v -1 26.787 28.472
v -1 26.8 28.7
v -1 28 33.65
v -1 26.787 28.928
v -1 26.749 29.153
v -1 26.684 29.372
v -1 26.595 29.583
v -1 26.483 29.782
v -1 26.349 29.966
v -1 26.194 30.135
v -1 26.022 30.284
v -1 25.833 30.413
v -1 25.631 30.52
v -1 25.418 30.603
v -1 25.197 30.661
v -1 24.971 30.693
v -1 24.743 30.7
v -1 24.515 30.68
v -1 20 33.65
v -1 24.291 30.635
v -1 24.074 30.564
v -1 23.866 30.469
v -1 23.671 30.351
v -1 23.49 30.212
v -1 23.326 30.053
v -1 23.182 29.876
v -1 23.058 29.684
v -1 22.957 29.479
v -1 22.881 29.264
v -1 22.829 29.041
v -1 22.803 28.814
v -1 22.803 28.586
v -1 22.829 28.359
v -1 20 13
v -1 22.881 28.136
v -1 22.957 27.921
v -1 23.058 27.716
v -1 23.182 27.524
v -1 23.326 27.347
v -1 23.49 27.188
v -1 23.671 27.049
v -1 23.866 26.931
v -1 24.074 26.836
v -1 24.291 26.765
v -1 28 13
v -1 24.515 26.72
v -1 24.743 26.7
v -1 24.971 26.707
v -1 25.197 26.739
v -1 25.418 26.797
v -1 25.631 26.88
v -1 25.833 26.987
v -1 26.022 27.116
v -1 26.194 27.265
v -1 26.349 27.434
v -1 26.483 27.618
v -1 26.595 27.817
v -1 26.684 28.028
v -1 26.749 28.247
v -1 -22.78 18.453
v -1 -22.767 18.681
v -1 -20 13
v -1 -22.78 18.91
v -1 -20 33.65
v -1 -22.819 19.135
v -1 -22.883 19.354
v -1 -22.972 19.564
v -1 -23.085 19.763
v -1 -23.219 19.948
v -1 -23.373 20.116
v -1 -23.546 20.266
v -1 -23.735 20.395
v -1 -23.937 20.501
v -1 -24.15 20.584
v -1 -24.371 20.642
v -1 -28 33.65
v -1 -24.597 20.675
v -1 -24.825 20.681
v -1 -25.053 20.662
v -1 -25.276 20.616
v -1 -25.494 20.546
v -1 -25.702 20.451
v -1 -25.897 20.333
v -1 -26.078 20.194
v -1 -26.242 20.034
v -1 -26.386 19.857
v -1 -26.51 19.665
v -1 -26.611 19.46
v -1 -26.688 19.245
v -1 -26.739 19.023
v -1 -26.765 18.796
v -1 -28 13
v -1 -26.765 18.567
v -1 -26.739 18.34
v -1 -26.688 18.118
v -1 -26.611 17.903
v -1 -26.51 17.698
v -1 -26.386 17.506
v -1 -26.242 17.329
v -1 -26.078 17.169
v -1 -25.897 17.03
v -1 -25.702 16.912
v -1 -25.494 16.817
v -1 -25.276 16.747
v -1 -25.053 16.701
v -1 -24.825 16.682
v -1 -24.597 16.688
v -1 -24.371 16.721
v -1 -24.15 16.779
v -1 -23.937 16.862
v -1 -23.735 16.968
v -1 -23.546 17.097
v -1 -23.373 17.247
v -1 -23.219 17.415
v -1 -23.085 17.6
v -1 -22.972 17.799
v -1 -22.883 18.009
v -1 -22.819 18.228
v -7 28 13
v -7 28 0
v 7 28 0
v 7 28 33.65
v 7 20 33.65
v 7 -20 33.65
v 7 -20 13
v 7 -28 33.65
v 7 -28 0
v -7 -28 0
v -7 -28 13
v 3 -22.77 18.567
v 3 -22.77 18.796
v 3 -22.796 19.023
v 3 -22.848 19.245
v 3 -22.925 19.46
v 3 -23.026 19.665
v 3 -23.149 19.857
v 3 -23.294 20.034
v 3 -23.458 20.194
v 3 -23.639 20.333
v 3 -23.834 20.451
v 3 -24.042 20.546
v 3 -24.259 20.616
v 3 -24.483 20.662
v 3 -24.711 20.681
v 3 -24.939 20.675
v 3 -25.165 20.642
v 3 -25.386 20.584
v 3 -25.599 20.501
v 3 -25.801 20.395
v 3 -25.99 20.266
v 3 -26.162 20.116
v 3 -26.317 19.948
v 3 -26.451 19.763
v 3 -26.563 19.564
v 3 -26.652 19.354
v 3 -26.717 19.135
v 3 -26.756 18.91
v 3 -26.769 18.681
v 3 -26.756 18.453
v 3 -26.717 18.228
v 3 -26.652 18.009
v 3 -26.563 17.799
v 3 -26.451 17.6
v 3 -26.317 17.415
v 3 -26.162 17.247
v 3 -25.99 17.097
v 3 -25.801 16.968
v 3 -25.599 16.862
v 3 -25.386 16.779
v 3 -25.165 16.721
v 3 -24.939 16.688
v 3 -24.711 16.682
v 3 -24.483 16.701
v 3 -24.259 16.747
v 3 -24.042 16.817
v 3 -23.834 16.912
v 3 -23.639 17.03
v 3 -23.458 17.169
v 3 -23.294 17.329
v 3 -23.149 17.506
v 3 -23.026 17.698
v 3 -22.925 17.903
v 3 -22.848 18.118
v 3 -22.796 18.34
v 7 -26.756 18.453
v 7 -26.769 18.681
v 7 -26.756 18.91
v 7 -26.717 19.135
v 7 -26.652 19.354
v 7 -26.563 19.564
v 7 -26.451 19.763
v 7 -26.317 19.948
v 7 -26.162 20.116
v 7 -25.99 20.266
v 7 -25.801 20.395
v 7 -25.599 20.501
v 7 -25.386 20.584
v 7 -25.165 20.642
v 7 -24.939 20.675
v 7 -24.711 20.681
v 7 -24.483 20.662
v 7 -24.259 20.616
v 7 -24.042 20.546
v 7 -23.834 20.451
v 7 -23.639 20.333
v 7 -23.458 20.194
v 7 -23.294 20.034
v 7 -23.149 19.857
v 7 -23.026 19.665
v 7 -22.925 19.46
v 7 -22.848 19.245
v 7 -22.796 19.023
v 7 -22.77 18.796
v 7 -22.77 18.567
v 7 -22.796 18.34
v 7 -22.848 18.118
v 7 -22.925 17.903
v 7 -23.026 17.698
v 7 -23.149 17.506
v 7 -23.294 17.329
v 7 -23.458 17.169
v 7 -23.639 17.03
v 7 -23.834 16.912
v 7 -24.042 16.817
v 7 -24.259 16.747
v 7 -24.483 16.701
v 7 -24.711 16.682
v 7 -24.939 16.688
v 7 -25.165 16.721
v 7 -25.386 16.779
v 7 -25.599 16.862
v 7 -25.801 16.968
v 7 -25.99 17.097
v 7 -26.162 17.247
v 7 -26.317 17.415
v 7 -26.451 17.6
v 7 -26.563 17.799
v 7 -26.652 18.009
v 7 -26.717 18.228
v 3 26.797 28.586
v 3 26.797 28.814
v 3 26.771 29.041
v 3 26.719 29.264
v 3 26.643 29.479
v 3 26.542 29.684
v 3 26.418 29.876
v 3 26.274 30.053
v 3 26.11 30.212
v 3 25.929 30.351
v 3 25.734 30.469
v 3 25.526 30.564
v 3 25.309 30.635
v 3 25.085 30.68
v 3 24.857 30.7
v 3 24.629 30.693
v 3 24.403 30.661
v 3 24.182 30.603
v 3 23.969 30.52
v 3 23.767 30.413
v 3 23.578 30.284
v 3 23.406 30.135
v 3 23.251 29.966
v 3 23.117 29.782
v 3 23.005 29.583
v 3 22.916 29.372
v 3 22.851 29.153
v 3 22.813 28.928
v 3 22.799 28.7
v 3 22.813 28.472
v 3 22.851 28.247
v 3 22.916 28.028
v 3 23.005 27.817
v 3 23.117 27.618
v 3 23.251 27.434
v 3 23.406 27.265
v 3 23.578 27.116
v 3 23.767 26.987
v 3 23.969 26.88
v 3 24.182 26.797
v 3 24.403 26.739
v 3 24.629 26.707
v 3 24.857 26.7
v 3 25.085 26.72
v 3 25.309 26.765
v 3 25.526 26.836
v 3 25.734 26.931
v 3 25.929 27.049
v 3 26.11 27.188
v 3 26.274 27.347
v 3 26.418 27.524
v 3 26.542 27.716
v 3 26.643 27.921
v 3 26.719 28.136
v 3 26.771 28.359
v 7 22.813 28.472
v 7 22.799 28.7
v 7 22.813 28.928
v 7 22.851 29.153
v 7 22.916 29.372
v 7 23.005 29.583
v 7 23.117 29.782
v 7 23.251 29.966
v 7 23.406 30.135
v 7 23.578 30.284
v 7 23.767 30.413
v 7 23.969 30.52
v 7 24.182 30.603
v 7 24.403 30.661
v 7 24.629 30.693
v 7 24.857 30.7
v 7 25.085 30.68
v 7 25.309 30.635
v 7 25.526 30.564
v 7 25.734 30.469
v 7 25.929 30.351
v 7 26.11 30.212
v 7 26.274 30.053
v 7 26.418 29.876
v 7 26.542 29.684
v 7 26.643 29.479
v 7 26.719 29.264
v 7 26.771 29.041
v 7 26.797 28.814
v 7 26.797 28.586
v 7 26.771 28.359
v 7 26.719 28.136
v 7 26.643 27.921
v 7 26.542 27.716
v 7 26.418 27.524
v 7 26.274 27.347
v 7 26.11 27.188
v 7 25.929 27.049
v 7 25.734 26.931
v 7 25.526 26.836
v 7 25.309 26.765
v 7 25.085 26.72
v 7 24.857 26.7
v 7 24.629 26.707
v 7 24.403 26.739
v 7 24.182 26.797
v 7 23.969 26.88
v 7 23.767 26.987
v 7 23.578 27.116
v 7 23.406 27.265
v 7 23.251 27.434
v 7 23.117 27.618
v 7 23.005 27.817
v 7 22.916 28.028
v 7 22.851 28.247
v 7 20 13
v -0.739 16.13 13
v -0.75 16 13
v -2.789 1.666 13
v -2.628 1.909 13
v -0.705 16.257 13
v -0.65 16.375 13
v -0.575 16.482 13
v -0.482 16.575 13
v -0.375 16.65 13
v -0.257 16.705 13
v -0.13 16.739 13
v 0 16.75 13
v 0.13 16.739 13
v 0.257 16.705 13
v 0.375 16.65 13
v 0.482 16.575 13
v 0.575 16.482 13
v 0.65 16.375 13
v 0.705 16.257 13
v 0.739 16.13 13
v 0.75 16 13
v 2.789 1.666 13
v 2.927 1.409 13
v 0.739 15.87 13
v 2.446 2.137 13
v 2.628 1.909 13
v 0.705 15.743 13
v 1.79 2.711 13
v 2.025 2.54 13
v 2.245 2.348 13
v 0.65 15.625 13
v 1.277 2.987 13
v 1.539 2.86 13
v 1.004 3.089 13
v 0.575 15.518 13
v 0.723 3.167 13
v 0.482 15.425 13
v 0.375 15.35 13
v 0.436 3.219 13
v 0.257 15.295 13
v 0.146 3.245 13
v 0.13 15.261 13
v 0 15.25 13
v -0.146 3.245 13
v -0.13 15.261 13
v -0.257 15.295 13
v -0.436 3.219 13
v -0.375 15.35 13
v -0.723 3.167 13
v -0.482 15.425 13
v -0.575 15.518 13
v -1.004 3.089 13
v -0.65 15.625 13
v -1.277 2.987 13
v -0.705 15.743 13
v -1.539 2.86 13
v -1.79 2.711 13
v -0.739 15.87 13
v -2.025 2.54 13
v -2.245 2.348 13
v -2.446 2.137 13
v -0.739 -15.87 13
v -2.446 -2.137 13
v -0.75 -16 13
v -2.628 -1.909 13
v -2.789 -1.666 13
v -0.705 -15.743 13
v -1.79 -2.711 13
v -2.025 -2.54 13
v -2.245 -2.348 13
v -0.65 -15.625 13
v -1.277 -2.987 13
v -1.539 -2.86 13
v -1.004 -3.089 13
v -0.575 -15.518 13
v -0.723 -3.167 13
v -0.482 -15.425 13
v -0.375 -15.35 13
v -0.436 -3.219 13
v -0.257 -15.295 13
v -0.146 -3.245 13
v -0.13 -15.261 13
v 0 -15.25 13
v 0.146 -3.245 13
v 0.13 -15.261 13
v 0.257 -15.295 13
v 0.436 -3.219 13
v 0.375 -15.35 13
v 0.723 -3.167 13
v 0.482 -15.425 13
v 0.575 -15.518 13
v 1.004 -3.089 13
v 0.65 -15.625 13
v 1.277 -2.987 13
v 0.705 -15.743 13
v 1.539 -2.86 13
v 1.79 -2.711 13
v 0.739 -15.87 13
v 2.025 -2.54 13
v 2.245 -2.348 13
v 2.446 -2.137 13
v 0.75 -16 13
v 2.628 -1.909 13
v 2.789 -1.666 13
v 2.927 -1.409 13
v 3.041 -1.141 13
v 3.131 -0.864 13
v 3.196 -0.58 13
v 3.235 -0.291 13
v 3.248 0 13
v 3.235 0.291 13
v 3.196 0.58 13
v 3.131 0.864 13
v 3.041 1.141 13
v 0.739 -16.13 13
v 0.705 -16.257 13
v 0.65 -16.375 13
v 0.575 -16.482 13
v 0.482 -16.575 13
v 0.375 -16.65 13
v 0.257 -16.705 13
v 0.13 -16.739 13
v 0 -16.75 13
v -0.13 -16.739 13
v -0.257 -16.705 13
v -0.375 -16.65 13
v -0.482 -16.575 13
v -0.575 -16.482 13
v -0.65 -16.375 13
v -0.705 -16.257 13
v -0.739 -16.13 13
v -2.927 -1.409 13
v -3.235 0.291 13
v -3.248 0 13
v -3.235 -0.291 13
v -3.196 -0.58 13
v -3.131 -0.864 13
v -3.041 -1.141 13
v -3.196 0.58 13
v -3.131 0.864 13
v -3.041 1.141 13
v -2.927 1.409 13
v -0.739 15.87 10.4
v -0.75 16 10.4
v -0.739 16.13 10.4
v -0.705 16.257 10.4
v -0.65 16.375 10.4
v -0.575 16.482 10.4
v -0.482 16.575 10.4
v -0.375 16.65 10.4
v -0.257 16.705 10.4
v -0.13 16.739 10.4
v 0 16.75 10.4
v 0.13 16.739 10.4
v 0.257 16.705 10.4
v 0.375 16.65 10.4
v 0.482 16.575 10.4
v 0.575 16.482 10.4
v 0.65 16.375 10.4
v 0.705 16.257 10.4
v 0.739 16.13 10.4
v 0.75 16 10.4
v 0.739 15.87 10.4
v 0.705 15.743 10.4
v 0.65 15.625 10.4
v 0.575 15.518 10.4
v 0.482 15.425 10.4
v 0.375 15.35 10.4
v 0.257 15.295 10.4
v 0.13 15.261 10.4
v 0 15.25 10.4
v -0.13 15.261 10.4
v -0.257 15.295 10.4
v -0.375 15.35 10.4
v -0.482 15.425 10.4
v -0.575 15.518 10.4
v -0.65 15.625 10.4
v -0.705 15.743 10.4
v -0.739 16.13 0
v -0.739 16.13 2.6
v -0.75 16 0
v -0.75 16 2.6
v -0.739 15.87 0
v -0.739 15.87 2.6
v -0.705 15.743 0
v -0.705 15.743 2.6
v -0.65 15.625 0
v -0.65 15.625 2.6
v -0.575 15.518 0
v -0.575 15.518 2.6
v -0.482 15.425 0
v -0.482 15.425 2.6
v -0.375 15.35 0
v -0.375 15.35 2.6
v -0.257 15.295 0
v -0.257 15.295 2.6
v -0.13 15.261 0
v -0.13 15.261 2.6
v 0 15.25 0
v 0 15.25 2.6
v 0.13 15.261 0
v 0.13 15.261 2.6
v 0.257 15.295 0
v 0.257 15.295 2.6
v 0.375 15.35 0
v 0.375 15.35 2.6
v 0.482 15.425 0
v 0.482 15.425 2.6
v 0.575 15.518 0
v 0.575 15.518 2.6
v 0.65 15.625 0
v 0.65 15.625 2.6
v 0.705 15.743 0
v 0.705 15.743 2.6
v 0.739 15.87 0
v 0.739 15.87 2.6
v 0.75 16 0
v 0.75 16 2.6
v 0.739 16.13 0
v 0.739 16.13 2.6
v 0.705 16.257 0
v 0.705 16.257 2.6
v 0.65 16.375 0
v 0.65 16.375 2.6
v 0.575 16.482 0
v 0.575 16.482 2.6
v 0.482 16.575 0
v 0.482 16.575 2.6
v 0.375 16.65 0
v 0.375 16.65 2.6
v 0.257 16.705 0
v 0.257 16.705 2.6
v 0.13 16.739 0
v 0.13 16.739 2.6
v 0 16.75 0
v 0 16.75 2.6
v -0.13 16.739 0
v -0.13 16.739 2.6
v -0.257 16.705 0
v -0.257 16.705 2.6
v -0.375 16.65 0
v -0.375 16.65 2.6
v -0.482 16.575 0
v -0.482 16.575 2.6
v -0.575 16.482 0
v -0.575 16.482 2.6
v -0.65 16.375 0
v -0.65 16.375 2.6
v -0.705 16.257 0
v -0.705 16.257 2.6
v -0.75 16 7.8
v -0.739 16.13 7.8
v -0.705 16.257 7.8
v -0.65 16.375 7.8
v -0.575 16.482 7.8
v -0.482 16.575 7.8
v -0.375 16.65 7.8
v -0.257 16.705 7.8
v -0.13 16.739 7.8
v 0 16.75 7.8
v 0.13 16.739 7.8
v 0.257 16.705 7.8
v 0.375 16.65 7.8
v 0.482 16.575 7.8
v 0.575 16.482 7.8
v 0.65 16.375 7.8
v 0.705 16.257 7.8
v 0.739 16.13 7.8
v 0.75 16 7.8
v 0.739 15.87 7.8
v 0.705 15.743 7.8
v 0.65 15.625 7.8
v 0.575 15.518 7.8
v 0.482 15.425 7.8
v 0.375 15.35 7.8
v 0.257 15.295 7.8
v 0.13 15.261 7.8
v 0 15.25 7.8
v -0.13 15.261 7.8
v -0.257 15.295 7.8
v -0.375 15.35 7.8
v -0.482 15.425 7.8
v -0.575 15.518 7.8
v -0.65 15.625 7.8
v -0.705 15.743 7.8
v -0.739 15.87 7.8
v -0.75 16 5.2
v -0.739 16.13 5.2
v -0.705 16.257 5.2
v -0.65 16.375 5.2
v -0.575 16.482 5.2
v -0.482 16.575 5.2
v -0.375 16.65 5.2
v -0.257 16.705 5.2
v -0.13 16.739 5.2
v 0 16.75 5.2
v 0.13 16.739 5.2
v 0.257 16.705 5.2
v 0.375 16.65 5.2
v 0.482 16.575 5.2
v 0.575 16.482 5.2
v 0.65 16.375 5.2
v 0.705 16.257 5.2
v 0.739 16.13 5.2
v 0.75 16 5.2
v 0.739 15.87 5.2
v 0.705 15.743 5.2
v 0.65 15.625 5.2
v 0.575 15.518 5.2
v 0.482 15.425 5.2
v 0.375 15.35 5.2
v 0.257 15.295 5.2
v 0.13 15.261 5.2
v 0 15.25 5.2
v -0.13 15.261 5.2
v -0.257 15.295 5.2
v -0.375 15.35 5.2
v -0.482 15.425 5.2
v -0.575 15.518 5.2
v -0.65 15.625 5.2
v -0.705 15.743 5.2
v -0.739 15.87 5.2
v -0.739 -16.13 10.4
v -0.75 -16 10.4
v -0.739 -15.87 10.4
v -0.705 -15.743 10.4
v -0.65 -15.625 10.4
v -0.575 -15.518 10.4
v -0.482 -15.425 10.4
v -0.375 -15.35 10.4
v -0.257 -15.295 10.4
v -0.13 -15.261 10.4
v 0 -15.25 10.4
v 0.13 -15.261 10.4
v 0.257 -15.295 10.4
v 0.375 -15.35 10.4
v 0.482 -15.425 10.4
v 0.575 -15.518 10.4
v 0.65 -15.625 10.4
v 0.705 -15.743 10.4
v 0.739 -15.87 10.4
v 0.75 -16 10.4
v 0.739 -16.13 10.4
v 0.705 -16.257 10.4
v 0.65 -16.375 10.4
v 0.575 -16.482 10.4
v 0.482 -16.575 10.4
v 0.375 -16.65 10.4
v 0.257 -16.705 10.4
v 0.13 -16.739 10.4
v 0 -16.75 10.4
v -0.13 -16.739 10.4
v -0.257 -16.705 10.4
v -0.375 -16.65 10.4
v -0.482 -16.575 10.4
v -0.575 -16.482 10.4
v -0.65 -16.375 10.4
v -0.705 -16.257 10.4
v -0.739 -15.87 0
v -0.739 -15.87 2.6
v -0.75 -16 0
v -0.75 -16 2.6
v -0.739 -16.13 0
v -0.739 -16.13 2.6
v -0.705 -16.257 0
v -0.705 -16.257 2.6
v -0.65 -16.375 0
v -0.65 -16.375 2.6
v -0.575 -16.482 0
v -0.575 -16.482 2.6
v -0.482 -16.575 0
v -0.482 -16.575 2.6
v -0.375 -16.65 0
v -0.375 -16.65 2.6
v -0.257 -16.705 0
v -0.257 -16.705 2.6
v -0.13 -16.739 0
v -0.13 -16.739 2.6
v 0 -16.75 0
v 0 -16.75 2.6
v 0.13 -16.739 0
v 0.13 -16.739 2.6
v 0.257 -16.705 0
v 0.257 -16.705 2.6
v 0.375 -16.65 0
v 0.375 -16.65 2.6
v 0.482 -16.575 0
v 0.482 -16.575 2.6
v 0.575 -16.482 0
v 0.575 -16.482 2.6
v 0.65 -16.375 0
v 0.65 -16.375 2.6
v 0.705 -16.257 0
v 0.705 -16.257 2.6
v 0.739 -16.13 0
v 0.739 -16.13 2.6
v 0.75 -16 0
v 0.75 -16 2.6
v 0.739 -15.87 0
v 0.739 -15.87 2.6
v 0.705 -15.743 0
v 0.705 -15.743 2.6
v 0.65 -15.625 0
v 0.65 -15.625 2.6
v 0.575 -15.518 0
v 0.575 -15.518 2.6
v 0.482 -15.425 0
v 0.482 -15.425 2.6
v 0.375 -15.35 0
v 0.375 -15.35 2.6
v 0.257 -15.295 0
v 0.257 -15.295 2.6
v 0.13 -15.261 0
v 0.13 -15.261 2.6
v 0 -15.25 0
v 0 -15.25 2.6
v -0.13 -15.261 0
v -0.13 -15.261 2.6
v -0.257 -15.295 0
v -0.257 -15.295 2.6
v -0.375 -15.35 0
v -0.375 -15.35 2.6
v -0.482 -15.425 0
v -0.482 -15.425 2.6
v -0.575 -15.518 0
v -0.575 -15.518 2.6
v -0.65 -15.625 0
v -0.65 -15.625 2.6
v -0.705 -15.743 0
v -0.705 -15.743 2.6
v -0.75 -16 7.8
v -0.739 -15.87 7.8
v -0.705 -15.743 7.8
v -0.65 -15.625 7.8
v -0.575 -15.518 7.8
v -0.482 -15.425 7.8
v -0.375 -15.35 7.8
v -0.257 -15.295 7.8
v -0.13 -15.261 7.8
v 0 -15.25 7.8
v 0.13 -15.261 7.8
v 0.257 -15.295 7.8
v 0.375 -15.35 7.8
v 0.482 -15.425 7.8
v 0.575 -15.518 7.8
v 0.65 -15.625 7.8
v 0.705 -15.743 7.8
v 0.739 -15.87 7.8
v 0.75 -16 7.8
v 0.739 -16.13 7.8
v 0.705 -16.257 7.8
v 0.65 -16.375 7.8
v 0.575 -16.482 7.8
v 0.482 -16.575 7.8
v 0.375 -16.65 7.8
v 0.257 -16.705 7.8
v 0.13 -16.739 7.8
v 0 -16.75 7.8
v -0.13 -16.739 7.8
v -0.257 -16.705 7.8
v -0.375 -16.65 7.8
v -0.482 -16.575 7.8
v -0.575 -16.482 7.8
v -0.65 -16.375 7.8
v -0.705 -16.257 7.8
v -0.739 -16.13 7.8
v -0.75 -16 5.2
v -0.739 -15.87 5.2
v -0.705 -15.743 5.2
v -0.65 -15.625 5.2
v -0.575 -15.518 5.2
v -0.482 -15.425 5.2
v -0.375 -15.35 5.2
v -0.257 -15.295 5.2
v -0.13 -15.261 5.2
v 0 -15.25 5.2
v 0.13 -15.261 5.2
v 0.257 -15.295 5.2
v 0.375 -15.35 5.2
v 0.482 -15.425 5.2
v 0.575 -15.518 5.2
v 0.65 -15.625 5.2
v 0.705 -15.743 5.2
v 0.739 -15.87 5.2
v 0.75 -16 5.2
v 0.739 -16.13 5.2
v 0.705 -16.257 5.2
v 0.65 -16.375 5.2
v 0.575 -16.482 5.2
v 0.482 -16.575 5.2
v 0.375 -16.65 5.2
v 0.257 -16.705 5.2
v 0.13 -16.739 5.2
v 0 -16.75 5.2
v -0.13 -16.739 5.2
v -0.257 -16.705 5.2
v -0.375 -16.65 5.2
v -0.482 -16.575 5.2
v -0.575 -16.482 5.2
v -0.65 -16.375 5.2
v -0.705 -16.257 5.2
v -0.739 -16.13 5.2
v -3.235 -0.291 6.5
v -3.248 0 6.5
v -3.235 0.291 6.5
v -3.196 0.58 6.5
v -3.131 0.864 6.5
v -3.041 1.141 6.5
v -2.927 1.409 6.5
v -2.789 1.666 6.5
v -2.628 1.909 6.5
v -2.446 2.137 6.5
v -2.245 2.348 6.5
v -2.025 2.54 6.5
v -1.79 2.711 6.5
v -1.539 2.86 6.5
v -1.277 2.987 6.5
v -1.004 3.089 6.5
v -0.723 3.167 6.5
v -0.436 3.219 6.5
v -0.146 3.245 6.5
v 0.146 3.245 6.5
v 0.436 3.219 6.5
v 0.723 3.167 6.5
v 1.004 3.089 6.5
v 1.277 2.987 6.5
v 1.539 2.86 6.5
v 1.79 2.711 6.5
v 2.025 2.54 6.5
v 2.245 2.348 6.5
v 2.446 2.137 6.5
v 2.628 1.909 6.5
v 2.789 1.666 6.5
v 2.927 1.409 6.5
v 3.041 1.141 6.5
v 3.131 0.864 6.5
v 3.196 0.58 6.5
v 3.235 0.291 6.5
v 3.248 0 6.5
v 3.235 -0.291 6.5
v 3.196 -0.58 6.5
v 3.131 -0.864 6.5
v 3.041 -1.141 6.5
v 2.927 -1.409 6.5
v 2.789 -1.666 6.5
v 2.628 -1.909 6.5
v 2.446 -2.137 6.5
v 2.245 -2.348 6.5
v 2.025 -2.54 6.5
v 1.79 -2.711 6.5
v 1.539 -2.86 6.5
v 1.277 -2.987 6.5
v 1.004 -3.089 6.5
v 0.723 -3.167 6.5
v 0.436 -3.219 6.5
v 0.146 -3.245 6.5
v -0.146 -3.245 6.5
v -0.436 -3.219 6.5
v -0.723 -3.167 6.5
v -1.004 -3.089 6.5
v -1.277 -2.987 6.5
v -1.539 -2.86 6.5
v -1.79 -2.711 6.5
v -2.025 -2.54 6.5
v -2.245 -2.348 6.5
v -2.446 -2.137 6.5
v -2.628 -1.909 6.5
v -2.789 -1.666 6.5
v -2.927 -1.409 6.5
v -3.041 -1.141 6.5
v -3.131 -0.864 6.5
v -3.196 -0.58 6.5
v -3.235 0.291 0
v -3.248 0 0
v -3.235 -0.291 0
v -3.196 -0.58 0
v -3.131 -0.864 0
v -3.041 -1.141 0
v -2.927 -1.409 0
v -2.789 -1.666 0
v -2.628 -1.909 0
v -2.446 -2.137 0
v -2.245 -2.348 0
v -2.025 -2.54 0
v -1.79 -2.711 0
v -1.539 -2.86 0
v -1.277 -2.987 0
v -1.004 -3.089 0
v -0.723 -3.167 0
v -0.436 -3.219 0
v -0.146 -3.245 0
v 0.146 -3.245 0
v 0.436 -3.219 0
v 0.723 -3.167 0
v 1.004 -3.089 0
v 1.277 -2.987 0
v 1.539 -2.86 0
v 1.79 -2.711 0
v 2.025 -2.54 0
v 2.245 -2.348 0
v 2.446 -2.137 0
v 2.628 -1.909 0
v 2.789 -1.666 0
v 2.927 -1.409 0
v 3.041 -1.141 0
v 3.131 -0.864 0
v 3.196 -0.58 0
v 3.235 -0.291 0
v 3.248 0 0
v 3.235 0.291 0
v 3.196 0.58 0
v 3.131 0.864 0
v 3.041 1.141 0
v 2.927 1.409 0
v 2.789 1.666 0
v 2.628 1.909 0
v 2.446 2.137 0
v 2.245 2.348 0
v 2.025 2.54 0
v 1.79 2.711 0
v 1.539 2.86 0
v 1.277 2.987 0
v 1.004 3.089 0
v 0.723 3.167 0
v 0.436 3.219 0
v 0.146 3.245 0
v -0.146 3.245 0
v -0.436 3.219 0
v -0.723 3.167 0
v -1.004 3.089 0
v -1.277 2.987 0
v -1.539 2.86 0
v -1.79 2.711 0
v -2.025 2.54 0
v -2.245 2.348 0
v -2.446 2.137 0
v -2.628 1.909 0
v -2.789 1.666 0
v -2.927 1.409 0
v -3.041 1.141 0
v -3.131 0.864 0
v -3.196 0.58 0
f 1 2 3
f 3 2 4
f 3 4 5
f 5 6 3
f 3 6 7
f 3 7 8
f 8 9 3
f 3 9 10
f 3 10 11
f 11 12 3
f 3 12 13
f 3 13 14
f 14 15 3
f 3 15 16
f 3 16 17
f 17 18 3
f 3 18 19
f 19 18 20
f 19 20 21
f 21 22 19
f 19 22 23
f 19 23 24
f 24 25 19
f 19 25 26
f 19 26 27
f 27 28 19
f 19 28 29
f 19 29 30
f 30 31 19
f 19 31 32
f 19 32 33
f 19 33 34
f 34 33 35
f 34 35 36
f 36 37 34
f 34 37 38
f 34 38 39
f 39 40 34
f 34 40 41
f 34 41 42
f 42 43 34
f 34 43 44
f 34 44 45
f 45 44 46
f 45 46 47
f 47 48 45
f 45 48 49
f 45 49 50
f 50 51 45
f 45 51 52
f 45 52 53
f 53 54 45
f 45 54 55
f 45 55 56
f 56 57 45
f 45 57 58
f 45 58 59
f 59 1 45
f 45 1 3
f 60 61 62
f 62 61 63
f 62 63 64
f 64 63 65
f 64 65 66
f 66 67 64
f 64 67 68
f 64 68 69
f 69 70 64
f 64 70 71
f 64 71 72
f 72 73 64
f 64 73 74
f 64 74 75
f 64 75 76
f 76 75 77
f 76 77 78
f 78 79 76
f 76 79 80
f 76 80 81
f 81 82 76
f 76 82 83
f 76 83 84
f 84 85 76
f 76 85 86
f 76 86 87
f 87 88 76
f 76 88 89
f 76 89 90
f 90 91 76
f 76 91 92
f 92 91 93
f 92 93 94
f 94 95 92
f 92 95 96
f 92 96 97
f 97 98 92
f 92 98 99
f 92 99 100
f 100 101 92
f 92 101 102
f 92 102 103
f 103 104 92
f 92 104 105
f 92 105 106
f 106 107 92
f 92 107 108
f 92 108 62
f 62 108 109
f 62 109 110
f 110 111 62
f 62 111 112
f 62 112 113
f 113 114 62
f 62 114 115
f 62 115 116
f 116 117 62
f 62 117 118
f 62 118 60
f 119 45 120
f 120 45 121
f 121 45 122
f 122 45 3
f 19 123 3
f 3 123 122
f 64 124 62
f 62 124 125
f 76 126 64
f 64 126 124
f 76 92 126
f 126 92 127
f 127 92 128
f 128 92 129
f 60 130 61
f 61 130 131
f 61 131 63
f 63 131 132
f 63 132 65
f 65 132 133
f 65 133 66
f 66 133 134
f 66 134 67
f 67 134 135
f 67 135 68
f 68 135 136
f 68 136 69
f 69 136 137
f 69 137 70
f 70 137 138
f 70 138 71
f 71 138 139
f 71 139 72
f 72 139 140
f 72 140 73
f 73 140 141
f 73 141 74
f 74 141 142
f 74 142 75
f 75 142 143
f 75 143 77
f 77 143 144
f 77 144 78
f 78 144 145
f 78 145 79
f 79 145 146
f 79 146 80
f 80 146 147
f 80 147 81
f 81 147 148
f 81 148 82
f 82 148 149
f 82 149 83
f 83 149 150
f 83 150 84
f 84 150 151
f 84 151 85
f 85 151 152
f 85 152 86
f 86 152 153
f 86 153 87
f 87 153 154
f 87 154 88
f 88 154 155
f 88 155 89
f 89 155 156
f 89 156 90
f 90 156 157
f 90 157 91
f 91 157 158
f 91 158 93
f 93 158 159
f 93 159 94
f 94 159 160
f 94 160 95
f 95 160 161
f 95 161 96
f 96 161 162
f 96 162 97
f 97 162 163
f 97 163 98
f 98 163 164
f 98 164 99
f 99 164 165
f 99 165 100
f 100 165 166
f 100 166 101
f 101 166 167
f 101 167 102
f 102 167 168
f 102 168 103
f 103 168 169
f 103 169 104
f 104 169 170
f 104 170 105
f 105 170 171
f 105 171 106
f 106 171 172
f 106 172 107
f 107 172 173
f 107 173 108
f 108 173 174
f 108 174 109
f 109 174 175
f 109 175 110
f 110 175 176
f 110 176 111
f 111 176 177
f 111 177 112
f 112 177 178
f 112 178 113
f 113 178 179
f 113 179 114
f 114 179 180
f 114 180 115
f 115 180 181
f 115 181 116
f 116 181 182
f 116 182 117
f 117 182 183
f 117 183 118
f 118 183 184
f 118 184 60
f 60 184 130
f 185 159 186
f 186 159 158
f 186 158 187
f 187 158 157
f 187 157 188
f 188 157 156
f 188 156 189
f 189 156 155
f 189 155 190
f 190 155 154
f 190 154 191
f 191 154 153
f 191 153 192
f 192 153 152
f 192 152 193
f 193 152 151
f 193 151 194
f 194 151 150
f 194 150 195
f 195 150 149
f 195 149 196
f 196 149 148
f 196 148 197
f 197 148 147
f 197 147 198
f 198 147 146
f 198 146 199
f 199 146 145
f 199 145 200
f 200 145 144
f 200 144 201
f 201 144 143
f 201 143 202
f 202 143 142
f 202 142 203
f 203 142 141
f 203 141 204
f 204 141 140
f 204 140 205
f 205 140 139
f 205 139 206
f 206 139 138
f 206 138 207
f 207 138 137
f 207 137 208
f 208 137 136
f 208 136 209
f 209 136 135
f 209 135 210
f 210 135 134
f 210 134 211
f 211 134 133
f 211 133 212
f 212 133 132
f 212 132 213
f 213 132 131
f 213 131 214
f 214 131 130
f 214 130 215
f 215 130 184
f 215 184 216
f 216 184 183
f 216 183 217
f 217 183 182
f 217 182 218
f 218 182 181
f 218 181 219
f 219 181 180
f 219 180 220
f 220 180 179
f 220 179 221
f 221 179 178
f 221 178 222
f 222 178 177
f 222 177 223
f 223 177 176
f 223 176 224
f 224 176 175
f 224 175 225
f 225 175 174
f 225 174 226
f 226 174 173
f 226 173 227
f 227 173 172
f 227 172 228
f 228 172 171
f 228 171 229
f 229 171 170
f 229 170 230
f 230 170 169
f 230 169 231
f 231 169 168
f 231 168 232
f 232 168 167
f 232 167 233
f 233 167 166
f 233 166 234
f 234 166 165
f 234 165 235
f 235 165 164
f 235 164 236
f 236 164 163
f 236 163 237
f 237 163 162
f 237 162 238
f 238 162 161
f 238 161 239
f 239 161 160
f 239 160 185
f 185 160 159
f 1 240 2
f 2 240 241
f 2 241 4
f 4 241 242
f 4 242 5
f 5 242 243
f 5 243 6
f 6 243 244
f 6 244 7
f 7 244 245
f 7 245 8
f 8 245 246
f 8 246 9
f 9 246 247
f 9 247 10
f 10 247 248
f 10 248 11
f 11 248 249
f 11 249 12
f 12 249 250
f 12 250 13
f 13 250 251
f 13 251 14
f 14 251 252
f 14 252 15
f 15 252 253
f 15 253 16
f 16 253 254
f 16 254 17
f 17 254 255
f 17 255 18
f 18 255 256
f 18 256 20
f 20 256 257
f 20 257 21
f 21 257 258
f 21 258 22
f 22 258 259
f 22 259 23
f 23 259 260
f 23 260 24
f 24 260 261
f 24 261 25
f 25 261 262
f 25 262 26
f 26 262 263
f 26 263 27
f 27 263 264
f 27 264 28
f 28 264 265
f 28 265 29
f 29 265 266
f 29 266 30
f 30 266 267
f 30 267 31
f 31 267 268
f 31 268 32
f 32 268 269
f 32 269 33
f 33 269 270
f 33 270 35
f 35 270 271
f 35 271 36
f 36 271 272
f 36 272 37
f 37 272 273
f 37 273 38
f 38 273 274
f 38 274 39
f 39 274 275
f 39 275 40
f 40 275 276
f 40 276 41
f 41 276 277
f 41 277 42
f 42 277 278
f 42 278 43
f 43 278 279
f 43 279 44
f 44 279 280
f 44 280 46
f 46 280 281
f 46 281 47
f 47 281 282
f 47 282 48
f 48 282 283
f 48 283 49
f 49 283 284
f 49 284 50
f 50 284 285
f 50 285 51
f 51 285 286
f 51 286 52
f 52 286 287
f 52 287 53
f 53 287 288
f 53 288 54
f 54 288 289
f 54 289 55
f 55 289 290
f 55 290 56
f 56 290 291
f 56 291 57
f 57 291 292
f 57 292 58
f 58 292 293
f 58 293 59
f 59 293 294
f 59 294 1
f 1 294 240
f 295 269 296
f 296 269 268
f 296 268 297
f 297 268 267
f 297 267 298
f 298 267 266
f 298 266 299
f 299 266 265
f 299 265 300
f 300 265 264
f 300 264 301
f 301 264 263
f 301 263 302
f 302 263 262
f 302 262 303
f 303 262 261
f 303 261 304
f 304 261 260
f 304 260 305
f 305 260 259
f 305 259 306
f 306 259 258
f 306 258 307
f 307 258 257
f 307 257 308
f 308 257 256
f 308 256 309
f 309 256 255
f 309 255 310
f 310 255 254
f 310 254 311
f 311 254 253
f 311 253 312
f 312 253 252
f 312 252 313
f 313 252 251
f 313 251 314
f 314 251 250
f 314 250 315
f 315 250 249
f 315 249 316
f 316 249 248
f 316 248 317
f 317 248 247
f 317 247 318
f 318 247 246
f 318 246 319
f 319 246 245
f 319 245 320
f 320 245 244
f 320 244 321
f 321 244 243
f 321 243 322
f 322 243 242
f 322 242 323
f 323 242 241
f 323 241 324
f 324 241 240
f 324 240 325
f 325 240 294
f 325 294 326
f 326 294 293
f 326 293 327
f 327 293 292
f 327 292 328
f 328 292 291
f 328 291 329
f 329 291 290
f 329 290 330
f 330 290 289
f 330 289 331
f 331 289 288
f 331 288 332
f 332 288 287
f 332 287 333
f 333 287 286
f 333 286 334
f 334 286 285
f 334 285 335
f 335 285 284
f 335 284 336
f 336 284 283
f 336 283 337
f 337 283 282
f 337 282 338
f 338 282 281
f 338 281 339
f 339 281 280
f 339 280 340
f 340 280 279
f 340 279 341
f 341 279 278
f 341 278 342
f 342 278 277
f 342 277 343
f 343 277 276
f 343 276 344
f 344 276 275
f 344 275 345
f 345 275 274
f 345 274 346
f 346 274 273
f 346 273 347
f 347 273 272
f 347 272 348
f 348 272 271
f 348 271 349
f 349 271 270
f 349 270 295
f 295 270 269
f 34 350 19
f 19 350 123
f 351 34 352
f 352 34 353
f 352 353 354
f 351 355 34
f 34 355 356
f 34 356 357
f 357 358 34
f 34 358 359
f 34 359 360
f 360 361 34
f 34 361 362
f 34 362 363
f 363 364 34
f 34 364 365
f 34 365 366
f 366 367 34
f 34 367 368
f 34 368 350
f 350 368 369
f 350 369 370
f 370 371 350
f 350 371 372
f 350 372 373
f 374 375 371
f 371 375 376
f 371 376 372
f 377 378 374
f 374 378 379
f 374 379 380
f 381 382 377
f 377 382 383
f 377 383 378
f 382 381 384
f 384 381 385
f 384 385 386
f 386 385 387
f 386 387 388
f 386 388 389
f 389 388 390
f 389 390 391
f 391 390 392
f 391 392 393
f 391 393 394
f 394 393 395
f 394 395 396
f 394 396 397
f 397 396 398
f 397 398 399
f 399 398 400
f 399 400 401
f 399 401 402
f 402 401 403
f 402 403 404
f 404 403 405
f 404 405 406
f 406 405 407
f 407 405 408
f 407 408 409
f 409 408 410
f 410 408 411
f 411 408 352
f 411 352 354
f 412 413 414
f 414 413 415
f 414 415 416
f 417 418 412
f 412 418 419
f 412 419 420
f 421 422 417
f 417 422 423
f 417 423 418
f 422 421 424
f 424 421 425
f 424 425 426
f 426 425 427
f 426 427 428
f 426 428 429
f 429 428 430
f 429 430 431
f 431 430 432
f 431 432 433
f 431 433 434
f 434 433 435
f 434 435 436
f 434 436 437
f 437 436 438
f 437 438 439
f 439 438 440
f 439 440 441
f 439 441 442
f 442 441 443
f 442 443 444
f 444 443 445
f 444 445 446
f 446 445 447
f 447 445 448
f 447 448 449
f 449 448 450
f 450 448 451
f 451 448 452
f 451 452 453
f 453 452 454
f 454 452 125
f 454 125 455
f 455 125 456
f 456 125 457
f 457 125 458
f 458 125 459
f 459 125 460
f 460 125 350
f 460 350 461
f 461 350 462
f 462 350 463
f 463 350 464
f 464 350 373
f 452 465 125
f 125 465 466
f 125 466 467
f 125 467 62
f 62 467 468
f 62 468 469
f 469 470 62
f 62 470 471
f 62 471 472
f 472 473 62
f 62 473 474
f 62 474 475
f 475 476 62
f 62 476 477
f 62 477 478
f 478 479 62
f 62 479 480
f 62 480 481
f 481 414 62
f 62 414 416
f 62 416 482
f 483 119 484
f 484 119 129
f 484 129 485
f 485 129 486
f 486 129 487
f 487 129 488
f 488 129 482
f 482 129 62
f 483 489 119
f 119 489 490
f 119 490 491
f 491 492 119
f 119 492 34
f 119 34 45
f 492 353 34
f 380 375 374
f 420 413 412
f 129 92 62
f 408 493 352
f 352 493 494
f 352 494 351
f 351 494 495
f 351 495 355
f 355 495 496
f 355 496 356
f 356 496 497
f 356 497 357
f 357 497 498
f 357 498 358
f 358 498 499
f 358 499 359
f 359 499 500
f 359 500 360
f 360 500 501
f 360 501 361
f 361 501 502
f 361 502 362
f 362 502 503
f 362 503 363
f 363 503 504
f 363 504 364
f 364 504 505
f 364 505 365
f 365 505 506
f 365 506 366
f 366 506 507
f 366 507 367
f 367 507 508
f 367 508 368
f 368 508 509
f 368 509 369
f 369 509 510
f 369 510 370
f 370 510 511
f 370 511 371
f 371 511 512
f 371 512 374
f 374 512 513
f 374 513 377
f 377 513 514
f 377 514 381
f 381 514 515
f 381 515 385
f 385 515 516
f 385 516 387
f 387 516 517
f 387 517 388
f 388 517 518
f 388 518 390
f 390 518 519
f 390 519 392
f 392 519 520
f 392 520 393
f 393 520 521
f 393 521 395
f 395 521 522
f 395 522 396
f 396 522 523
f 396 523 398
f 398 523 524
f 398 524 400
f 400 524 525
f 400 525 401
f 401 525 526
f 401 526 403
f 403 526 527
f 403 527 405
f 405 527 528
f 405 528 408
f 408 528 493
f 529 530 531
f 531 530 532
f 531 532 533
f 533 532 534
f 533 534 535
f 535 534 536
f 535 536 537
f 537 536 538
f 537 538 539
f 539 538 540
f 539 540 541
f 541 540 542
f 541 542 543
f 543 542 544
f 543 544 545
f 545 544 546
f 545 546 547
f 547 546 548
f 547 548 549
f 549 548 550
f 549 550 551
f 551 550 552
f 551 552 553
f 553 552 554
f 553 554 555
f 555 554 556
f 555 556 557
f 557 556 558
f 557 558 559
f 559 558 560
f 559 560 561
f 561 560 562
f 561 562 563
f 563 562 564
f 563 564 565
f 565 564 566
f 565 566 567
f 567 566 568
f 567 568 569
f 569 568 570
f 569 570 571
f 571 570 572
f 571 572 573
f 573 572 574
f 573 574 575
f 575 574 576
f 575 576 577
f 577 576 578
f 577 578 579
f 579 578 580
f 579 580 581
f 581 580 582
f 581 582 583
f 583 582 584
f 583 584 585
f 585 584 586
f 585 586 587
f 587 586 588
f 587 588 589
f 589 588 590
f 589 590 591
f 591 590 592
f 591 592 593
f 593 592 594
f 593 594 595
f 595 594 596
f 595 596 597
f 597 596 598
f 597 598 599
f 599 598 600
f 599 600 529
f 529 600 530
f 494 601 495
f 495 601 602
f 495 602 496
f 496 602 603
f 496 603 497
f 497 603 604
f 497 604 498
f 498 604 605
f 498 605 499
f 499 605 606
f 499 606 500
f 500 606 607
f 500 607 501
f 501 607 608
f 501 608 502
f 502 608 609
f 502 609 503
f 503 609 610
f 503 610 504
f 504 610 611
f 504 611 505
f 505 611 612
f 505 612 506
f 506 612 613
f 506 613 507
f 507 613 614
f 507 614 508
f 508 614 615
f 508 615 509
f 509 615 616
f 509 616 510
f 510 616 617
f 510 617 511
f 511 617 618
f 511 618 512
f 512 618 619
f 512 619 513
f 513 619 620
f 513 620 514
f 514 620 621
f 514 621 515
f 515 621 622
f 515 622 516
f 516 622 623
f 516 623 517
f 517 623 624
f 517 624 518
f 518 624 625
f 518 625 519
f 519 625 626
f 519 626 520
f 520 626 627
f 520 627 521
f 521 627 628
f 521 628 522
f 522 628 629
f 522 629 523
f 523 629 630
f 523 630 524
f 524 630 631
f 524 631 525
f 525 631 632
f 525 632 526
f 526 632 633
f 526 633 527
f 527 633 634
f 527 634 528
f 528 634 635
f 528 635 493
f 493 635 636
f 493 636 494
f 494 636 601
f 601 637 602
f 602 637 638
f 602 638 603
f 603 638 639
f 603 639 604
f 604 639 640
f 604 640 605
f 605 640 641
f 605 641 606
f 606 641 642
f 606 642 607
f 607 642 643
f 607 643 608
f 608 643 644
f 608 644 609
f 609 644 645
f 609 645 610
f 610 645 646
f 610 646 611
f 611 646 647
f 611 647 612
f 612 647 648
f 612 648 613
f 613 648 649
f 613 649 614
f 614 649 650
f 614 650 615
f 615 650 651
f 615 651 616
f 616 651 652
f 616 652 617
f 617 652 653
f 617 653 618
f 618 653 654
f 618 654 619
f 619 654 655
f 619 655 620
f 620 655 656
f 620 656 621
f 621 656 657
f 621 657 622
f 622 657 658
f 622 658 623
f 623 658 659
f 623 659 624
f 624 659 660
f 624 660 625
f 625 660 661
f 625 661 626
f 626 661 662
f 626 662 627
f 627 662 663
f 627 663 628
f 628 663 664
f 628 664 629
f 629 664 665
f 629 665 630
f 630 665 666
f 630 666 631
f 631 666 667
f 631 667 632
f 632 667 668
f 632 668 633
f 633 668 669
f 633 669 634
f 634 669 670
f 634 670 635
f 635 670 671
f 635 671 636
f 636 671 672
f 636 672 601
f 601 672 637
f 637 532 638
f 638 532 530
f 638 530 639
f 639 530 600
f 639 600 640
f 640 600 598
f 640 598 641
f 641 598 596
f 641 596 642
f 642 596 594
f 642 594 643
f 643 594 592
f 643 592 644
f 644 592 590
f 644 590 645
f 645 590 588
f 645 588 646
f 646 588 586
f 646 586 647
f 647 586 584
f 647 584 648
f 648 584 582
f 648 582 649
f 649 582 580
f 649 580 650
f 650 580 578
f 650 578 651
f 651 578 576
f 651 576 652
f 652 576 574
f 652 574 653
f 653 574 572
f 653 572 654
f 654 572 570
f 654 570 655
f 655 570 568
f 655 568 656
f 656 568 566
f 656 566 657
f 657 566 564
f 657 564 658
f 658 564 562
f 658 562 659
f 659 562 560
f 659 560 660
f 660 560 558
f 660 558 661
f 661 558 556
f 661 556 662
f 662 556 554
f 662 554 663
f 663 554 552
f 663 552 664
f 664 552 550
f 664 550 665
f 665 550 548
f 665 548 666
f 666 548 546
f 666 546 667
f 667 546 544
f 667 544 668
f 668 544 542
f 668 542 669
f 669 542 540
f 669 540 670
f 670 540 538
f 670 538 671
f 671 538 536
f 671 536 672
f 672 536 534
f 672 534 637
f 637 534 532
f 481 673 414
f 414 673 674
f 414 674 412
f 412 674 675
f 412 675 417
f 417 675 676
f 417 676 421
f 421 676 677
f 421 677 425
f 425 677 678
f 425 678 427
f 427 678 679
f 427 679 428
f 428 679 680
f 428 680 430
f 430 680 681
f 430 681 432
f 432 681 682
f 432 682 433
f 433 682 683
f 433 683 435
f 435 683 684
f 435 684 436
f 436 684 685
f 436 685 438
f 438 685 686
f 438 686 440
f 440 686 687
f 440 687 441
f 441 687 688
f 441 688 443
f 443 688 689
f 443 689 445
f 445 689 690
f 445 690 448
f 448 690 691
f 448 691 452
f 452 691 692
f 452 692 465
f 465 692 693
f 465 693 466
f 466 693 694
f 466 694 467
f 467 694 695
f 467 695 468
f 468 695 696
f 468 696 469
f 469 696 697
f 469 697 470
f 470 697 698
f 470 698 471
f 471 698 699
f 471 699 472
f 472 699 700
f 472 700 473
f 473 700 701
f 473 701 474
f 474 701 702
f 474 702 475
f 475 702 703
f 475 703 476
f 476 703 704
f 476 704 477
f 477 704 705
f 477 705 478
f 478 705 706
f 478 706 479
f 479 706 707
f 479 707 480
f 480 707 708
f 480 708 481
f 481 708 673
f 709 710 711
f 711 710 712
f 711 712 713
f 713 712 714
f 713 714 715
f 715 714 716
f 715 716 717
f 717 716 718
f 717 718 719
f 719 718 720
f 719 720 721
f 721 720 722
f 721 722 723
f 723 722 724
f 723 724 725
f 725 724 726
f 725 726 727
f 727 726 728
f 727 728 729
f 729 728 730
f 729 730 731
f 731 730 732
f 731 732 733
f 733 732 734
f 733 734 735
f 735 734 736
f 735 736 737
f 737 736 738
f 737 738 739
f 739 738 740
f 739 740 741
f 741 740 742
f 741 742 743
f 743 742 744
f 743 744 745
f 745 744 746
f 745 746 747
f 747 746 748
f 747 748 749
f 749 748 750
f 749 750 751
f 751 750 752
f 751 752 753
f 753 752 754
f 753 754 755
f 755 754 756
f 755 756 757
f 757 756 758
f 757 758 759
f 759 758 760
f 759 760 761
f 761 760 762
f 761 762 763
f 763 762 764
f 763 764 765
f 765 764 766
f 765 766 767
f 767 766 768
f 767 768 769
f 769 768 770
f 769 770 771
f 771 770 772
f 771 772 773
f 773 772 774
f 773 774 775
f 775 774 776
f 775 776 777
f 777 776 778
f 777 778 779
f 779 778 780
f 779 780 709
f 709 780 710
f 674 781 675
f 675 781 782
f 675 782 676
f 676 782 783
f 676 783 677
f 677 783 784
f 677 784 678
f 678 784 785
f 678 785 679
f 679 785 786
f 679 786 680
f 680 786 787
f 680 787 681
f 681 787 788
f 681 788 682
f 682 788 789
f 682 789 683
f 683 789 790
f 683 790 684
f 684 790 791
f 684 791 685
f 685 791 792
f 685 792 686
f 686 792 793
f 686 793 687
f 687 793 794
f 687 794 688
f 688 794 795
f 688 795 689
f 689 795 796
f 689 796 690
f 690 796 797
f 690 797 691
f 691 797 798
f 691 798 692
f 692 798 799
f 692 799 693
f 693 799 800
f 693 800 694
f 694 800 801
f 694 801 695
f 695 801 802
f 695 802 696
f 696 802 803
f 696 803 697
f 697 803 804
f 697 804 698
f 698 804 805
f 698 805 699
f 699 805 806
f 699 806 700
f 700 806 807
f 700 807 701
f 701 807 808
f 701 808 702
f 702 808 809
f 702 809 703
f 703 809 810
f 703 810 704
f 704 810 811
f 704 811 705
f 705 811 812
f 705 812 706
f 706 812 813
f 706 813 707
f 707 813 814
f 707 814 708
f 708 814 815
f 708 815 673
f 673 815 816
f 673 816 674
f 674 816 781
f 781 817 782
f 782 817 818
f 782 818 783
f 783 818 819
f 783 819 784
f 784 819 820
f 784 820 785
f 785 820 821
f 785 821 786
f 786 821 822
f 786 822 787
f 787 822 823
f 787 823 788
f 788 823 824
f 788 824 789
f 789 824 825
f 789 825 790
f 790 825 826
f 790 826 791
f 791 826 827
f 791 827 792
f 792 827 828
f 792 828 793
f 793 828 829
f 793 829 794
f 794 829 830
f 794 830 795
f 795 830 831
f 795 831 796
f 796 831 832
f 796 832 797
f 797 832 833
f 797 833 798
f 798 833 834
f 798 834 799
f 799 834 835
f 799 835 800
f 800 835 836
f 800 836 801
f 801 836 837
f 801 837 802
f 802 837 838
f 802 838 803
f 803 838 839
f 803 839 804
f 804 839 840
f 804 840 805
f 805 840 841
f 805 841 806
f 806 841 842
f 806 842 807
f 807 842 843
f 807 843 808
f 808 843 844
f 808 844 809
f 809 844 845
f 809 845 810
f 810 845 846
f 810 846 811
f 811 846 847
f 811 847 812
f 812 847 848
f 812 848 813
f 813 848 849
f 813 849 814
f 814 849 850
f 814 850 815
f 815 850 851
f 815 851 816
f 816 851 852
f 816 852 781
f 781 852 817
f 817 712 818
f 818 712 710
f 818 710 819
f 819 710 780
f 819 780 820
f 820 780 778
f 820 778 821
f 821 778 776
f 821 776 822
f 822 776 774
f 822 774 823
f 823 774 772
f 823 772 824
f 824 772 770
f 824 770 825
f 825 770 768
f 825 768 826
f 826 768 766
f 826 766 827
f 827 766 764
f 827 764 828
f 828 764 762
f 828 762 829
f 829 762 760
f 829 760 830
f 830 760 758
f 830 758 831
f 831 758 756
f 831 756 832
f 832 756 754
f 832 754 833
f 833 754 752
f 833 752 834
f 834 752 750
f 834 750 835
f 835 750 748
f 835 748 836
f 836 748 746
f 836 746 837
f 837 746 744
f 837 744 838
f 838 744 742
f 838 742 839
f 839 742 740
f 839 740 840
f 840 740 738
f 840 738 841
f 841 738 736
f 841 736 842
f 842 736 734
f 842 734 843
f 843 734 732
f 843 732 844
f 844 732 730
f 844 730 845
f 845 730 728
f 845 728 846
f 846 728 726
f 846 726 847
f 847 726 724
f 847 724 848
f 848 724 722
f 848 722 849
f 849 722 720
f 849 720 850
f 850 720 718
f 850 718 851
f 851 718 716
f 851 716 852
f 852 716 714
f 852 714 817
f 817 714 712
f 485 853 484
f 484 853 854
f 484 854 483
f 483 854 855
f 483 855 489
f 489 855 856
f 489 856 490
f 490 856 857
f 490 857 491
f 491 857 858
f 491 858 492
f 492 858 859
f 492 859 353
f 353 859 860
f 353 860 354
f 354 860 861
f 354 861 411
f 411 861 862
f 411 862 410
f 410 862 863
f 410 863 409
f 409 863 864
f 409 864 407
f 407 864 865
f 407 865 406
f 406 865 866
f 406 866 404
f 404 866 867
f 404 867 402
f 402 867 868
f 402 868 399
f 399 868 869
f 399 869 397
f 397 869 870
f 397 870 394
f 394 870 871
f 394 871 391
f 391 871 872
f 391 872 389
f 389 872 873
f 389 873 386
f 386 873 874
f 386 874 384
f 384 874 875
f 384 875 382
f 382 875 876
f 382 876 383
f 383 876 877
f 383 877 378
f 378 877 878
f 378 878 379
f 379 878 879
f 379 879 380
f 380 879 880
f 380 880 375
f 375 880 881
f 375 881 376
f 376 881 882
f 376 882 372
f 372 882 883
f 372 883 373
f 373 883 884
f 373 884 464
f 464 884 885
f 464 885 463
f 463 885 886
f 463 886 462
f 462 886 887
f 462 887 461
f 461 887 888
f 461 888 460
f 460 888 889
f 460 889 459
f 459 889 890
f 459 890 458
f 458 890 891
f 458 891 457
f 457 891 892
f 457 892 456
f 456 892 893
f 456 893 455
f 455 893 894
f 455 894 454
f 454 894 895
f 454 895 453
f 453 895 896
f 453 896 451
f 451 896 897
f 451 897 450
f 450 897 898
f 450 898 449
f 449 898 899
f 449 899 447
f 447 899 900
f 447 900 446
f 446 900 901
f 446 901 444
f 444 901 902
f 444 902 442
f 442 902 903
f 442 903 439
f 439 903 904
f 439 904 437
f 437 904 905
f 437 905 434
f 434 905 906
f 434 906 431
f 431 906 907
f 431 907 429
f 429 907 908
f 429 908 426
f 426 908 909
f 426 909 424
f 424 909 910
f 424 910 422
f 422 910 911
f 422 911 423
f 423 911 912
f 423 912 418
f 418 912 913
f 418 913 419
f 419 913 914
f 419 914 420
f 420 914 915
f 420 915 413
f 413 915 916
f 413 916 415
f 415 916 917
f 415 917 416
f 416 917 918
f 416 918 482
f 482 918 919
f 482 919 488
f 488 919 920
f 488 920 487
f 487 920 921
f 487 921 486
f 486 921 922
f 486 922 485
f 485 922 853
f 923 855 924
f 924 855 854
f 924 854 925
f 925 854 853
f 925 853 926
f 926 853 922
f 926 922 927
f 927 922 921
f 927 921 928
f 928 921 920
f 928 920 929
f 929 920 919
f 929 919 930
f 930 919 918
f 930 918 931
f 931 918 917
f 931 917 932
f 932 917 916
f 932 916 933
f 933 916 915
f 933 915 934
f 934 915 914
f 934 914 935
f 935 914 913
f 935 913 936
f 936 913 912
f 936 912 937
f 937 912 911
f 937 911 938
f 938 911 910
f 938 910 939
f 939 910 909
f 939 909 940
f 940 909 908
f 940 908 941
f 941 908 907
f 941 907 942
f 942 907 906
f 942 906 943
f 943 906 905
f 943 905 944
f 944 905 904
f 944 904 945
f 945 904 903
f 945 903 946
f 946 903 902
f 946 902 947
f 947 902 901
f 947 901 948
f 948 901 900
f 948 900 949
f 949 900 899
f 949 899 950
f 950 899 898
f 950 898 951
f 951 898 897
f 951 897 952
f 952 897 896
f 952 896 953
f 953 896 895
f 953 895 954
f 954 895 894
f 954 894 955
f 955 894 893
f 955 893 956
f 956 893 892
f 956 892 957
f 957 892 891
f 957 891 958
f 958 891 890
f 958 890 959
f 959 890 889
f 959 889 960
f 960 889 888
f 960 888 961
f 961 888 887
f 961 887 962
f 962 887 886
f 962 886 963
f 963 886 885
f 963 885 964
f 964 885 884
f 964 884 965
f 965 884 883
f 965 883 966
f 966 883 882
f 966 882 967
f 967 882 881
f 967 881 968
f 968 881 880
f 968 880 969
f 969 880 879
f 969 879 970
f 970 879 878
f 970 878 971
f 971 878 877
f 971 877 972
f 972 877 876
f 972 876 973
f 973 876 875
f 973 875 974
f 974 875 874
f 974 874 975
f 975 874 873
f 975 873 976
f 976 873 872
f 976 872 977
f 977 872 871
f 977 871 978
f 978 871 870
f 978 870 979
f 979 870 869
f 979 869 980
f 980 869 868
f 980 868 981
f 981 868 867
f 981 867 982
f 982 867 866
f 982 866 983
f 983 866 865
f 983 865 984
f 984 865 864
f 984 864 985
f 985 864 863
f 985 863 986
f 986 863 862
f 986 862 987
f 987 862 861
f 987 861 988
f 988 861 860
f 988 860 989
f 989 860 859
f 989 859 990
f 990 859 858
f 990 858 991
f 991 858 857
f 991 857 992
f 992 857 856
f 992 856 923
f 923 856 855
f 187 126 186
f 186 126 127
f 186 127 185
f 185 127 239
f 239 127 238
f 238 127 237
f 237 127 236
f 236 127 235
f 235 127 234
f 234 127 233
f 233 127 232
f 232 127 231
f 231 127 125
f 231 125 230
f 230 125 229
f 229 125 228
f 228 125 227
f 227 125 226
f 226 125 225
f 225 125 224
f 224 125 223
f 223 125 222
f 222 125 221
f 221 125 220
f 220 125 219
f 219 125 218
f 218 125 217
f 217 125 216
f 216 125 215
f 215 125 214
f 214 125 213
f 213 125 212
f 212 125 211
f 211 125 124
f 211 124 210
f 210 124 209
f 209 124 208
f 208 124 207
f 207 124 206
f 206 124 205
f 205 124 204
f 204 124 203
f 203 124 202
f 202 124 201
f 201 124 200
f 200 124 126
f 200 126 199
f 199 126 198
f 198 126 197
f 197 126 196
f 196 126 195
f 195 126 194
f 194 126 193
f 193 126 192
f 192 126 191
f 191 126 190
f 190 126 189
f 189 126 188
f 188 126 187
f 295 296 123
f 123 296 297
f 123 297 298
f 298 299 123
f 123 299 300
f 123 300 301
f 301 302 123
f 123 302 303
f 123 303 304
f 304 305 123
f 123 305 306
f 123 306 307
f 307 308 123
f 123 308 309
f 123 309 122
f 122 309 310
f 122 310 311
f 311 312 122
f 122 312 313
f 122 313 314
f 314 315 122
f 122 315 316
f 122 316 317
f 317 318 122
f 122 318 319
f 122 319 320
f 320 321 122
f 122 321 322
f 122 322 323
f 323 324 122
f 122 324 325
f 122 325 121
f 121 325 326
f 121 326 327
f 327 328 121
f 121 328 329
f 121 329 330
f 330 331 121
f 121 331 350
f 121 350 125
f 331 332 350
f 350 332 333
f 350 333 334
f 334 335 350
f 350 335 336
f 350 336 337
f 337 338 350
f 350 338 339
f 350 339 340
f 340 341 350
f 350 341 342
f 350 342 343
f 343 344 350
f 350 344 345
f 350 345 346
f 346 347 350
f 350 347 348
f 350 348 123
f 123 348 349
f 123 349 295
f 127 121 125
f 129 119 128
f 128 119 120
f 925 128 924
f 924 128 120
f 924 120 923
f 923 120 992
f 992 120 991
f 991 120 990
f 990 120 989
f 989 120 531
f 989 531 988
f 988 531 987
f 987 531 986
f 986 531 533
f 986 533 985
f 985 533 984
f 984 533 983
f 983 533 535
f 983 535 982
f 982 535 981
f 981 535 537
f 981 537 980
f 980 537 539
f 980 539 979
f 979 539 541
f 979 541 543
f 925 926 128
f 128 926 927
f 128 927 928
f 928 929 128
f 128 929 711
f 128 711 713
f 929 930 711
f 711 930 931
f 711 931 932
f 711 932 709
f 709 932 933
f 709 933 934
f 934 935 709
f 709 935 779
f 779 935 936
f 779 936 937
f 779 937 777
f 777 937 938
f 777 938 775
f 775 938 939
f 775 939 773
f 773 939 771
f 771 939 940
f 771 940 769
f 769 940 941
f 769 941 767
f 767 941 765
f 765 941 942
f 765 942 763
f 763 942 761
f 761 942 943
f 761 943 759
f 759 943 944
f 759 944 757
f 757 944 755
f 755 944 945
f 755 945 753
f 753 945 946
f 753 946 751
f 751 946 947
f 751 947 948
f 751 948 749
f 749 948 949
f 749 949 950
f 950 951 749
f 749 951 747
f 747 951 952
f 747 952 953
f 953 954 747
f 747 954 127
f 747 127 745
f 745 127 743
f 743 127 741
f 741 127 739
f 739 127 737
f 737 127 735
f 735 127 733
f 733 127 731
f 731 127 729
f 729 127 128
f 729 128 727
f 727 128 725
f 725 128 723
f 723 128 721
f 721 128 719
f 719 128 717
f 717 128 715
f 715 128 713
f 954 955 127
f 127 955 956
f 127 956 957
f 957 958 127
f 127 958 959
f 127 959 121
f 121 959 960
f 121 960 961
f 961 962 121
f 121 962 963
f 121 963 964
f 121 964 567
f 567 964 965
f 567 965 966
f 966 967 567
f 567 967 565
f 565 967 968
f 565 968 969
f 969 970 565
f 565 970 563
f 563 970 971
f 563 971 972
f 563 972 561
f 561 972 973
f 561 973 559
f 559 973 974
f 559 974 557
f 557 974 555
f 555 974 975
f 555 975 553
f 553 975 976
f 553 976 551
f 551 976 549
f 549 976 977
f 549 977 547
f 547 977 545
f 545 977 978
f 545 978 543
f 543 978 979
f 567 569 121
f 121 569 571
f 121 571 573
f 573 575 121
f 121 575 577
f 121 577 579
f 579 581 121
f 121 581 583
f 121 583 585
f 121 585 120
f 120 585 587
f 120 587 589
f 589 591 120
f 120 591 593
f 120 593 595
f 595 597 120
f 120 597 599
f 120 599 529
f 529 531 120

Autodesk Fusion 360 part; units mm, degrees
sketch "Sketch1" plane through (0, 0, 0) normal (0, 0, 1) x (1, 0, 0)
  line L0 (7, -22) -> (-7, -22)
  line L1 (-7, -22) -> (-7, 22)
  line L2 (-7, 22) -> (7, 22)
  line L3 (7, 22) -> (7, -22)
  line L4 (7, -22) -> (-7, 22) construction
  line L5 (-7, -22) -> (7, 22) construction
  circle A0 centre (0, 0) radius 3.2483
  circle A1 centre (0, 16) radius 0.75
  circle A2 centre (0, -16) radius 0.75
  dimension "d1" = 1.5
  dimension "d2" = 1.5
extrude "Extrude1" add sketch "Sketch1" along normal blind 13
extrude "Extrude2" add 1 faces at (-2.3333, 22, 4.3333) along direction (0, 1, 0) blind 6
extrude "Extrude3" add 1 faces at (2.3333, -22, 4.3333) along direction (0, -1, 0) blind 6
sketch "Sketch2" plane through (0, 0, 13) normal (0, 0, 1) x (-1, 0, 0)
  circle A0 centre (0, 0) radius 3.2483
  circle A1 centre (0, 16) radius 0.75
  circle A2 centre (0, -16) radius 0.75
  line L0 (7, -28) -> (7, 28)
  line L1 (7, 28) -> (-7, 28)
  line L2 (-7, 28) -> (-7, -28)
  line L3 (-7, -28) -> (7, -28)
sketch "Sketch3" plane through (0, 0, 13) normal (0, 0, 1) x (-1, 0, 0)
  line L0 (7, -28) -> (-7, -28)
  line L1 (-7, -28) -> (-7, -20)
  line L2 (-7, -20) -> (7, -20)
  line L3 (7, -20) -> (7, -28)
  line L4 (7, 20) -> (-7, 20)
  line L5 (-7, 20) -> (-7, 28)
  line L6 (-7, 28) -> (7, 28)
  line L7 (7, 28) -> (7, 20)
extrude "Extrude4" add sketch "Sketch3" along normal blind 11
extrude "Extrude5" add 2 faces at (-2.3333, 25.3333, 24) (-2.3333, -22.6667, 24) along direction (0, 0, 1) blind 9.65
sketch "Sketch4" plane through (7, 0, 0) normal (1, 0, 0) x (0, 1, 0)
  line L0 (-28, 0) -> (28, 0)
  line L1 (28, 0) -> (28, 33.65)
  line L2 (28, 33.65) -> (20, 33.65)
  line L3 (20, 33.65) -> (20, 13)
  line L4 (20, 13) -> (-20, 13)
  line L5 (-20, 13) -> (-20, 33.65)
  line L6 (-20, 33.65) -> (-28, 33.65)
  line L7 (-28, 33.65) -> (-28, 0)
  circle A0 centre (-24.7678, 18.6815) radius 2.0007
  circle A1 centre (24.8, 28.7) radius 2.0005
  dimension "d13" = 4.001
extrude "Extrude6" cut sketch "Sketch4" against normal blind 15 contours A0 | A1
sketch "Sketch5" plane through (-7, 0, 0) normal (-1, 0, 0) x (0, -1, 0)
  circle A0 centre (24.7678, 18.6815) radius 2.0007
  circle A1 centre (-24.8, 28.7) radius 2.0005
  line L0 (-28, 0) -> (28, 0)
  line L1 (28, 0) -> (28, 33.65)
  line L2 (28, 33.65) -> (20, 33.65)
  line L3 (20, 33.65) -> (20, 13)
  line L4 (20, 13) -> (-20, 13)
  line L5 (-20, 13) -> (-20, 33.65)
  line L6 (-20, 33.65) -> (-28, 33.65)
  line L7 (-28, 33.65) -> (-28, 0)
  line L8 (-28, 13) -> (28, 13)
  line L9 (28, 13) -> (28, 35.3728)
  line L10 (28, 35.3728) -> (-28, 35.3728)
  line L11 (-28, 35.3728) -> (-28, 13)
extrude "Extrude7" cut sketch "Sketch5" against normal blind 6 contours L5 L6 L7 L8 L11 | L1 L2 L3 L8 L9
extrude "Extrude8" [suppressed]
extrude "Extrude9" [suppressed]
extrude "Extrude10" [suppressed]
extrude "Extrude11" [suppressed]
